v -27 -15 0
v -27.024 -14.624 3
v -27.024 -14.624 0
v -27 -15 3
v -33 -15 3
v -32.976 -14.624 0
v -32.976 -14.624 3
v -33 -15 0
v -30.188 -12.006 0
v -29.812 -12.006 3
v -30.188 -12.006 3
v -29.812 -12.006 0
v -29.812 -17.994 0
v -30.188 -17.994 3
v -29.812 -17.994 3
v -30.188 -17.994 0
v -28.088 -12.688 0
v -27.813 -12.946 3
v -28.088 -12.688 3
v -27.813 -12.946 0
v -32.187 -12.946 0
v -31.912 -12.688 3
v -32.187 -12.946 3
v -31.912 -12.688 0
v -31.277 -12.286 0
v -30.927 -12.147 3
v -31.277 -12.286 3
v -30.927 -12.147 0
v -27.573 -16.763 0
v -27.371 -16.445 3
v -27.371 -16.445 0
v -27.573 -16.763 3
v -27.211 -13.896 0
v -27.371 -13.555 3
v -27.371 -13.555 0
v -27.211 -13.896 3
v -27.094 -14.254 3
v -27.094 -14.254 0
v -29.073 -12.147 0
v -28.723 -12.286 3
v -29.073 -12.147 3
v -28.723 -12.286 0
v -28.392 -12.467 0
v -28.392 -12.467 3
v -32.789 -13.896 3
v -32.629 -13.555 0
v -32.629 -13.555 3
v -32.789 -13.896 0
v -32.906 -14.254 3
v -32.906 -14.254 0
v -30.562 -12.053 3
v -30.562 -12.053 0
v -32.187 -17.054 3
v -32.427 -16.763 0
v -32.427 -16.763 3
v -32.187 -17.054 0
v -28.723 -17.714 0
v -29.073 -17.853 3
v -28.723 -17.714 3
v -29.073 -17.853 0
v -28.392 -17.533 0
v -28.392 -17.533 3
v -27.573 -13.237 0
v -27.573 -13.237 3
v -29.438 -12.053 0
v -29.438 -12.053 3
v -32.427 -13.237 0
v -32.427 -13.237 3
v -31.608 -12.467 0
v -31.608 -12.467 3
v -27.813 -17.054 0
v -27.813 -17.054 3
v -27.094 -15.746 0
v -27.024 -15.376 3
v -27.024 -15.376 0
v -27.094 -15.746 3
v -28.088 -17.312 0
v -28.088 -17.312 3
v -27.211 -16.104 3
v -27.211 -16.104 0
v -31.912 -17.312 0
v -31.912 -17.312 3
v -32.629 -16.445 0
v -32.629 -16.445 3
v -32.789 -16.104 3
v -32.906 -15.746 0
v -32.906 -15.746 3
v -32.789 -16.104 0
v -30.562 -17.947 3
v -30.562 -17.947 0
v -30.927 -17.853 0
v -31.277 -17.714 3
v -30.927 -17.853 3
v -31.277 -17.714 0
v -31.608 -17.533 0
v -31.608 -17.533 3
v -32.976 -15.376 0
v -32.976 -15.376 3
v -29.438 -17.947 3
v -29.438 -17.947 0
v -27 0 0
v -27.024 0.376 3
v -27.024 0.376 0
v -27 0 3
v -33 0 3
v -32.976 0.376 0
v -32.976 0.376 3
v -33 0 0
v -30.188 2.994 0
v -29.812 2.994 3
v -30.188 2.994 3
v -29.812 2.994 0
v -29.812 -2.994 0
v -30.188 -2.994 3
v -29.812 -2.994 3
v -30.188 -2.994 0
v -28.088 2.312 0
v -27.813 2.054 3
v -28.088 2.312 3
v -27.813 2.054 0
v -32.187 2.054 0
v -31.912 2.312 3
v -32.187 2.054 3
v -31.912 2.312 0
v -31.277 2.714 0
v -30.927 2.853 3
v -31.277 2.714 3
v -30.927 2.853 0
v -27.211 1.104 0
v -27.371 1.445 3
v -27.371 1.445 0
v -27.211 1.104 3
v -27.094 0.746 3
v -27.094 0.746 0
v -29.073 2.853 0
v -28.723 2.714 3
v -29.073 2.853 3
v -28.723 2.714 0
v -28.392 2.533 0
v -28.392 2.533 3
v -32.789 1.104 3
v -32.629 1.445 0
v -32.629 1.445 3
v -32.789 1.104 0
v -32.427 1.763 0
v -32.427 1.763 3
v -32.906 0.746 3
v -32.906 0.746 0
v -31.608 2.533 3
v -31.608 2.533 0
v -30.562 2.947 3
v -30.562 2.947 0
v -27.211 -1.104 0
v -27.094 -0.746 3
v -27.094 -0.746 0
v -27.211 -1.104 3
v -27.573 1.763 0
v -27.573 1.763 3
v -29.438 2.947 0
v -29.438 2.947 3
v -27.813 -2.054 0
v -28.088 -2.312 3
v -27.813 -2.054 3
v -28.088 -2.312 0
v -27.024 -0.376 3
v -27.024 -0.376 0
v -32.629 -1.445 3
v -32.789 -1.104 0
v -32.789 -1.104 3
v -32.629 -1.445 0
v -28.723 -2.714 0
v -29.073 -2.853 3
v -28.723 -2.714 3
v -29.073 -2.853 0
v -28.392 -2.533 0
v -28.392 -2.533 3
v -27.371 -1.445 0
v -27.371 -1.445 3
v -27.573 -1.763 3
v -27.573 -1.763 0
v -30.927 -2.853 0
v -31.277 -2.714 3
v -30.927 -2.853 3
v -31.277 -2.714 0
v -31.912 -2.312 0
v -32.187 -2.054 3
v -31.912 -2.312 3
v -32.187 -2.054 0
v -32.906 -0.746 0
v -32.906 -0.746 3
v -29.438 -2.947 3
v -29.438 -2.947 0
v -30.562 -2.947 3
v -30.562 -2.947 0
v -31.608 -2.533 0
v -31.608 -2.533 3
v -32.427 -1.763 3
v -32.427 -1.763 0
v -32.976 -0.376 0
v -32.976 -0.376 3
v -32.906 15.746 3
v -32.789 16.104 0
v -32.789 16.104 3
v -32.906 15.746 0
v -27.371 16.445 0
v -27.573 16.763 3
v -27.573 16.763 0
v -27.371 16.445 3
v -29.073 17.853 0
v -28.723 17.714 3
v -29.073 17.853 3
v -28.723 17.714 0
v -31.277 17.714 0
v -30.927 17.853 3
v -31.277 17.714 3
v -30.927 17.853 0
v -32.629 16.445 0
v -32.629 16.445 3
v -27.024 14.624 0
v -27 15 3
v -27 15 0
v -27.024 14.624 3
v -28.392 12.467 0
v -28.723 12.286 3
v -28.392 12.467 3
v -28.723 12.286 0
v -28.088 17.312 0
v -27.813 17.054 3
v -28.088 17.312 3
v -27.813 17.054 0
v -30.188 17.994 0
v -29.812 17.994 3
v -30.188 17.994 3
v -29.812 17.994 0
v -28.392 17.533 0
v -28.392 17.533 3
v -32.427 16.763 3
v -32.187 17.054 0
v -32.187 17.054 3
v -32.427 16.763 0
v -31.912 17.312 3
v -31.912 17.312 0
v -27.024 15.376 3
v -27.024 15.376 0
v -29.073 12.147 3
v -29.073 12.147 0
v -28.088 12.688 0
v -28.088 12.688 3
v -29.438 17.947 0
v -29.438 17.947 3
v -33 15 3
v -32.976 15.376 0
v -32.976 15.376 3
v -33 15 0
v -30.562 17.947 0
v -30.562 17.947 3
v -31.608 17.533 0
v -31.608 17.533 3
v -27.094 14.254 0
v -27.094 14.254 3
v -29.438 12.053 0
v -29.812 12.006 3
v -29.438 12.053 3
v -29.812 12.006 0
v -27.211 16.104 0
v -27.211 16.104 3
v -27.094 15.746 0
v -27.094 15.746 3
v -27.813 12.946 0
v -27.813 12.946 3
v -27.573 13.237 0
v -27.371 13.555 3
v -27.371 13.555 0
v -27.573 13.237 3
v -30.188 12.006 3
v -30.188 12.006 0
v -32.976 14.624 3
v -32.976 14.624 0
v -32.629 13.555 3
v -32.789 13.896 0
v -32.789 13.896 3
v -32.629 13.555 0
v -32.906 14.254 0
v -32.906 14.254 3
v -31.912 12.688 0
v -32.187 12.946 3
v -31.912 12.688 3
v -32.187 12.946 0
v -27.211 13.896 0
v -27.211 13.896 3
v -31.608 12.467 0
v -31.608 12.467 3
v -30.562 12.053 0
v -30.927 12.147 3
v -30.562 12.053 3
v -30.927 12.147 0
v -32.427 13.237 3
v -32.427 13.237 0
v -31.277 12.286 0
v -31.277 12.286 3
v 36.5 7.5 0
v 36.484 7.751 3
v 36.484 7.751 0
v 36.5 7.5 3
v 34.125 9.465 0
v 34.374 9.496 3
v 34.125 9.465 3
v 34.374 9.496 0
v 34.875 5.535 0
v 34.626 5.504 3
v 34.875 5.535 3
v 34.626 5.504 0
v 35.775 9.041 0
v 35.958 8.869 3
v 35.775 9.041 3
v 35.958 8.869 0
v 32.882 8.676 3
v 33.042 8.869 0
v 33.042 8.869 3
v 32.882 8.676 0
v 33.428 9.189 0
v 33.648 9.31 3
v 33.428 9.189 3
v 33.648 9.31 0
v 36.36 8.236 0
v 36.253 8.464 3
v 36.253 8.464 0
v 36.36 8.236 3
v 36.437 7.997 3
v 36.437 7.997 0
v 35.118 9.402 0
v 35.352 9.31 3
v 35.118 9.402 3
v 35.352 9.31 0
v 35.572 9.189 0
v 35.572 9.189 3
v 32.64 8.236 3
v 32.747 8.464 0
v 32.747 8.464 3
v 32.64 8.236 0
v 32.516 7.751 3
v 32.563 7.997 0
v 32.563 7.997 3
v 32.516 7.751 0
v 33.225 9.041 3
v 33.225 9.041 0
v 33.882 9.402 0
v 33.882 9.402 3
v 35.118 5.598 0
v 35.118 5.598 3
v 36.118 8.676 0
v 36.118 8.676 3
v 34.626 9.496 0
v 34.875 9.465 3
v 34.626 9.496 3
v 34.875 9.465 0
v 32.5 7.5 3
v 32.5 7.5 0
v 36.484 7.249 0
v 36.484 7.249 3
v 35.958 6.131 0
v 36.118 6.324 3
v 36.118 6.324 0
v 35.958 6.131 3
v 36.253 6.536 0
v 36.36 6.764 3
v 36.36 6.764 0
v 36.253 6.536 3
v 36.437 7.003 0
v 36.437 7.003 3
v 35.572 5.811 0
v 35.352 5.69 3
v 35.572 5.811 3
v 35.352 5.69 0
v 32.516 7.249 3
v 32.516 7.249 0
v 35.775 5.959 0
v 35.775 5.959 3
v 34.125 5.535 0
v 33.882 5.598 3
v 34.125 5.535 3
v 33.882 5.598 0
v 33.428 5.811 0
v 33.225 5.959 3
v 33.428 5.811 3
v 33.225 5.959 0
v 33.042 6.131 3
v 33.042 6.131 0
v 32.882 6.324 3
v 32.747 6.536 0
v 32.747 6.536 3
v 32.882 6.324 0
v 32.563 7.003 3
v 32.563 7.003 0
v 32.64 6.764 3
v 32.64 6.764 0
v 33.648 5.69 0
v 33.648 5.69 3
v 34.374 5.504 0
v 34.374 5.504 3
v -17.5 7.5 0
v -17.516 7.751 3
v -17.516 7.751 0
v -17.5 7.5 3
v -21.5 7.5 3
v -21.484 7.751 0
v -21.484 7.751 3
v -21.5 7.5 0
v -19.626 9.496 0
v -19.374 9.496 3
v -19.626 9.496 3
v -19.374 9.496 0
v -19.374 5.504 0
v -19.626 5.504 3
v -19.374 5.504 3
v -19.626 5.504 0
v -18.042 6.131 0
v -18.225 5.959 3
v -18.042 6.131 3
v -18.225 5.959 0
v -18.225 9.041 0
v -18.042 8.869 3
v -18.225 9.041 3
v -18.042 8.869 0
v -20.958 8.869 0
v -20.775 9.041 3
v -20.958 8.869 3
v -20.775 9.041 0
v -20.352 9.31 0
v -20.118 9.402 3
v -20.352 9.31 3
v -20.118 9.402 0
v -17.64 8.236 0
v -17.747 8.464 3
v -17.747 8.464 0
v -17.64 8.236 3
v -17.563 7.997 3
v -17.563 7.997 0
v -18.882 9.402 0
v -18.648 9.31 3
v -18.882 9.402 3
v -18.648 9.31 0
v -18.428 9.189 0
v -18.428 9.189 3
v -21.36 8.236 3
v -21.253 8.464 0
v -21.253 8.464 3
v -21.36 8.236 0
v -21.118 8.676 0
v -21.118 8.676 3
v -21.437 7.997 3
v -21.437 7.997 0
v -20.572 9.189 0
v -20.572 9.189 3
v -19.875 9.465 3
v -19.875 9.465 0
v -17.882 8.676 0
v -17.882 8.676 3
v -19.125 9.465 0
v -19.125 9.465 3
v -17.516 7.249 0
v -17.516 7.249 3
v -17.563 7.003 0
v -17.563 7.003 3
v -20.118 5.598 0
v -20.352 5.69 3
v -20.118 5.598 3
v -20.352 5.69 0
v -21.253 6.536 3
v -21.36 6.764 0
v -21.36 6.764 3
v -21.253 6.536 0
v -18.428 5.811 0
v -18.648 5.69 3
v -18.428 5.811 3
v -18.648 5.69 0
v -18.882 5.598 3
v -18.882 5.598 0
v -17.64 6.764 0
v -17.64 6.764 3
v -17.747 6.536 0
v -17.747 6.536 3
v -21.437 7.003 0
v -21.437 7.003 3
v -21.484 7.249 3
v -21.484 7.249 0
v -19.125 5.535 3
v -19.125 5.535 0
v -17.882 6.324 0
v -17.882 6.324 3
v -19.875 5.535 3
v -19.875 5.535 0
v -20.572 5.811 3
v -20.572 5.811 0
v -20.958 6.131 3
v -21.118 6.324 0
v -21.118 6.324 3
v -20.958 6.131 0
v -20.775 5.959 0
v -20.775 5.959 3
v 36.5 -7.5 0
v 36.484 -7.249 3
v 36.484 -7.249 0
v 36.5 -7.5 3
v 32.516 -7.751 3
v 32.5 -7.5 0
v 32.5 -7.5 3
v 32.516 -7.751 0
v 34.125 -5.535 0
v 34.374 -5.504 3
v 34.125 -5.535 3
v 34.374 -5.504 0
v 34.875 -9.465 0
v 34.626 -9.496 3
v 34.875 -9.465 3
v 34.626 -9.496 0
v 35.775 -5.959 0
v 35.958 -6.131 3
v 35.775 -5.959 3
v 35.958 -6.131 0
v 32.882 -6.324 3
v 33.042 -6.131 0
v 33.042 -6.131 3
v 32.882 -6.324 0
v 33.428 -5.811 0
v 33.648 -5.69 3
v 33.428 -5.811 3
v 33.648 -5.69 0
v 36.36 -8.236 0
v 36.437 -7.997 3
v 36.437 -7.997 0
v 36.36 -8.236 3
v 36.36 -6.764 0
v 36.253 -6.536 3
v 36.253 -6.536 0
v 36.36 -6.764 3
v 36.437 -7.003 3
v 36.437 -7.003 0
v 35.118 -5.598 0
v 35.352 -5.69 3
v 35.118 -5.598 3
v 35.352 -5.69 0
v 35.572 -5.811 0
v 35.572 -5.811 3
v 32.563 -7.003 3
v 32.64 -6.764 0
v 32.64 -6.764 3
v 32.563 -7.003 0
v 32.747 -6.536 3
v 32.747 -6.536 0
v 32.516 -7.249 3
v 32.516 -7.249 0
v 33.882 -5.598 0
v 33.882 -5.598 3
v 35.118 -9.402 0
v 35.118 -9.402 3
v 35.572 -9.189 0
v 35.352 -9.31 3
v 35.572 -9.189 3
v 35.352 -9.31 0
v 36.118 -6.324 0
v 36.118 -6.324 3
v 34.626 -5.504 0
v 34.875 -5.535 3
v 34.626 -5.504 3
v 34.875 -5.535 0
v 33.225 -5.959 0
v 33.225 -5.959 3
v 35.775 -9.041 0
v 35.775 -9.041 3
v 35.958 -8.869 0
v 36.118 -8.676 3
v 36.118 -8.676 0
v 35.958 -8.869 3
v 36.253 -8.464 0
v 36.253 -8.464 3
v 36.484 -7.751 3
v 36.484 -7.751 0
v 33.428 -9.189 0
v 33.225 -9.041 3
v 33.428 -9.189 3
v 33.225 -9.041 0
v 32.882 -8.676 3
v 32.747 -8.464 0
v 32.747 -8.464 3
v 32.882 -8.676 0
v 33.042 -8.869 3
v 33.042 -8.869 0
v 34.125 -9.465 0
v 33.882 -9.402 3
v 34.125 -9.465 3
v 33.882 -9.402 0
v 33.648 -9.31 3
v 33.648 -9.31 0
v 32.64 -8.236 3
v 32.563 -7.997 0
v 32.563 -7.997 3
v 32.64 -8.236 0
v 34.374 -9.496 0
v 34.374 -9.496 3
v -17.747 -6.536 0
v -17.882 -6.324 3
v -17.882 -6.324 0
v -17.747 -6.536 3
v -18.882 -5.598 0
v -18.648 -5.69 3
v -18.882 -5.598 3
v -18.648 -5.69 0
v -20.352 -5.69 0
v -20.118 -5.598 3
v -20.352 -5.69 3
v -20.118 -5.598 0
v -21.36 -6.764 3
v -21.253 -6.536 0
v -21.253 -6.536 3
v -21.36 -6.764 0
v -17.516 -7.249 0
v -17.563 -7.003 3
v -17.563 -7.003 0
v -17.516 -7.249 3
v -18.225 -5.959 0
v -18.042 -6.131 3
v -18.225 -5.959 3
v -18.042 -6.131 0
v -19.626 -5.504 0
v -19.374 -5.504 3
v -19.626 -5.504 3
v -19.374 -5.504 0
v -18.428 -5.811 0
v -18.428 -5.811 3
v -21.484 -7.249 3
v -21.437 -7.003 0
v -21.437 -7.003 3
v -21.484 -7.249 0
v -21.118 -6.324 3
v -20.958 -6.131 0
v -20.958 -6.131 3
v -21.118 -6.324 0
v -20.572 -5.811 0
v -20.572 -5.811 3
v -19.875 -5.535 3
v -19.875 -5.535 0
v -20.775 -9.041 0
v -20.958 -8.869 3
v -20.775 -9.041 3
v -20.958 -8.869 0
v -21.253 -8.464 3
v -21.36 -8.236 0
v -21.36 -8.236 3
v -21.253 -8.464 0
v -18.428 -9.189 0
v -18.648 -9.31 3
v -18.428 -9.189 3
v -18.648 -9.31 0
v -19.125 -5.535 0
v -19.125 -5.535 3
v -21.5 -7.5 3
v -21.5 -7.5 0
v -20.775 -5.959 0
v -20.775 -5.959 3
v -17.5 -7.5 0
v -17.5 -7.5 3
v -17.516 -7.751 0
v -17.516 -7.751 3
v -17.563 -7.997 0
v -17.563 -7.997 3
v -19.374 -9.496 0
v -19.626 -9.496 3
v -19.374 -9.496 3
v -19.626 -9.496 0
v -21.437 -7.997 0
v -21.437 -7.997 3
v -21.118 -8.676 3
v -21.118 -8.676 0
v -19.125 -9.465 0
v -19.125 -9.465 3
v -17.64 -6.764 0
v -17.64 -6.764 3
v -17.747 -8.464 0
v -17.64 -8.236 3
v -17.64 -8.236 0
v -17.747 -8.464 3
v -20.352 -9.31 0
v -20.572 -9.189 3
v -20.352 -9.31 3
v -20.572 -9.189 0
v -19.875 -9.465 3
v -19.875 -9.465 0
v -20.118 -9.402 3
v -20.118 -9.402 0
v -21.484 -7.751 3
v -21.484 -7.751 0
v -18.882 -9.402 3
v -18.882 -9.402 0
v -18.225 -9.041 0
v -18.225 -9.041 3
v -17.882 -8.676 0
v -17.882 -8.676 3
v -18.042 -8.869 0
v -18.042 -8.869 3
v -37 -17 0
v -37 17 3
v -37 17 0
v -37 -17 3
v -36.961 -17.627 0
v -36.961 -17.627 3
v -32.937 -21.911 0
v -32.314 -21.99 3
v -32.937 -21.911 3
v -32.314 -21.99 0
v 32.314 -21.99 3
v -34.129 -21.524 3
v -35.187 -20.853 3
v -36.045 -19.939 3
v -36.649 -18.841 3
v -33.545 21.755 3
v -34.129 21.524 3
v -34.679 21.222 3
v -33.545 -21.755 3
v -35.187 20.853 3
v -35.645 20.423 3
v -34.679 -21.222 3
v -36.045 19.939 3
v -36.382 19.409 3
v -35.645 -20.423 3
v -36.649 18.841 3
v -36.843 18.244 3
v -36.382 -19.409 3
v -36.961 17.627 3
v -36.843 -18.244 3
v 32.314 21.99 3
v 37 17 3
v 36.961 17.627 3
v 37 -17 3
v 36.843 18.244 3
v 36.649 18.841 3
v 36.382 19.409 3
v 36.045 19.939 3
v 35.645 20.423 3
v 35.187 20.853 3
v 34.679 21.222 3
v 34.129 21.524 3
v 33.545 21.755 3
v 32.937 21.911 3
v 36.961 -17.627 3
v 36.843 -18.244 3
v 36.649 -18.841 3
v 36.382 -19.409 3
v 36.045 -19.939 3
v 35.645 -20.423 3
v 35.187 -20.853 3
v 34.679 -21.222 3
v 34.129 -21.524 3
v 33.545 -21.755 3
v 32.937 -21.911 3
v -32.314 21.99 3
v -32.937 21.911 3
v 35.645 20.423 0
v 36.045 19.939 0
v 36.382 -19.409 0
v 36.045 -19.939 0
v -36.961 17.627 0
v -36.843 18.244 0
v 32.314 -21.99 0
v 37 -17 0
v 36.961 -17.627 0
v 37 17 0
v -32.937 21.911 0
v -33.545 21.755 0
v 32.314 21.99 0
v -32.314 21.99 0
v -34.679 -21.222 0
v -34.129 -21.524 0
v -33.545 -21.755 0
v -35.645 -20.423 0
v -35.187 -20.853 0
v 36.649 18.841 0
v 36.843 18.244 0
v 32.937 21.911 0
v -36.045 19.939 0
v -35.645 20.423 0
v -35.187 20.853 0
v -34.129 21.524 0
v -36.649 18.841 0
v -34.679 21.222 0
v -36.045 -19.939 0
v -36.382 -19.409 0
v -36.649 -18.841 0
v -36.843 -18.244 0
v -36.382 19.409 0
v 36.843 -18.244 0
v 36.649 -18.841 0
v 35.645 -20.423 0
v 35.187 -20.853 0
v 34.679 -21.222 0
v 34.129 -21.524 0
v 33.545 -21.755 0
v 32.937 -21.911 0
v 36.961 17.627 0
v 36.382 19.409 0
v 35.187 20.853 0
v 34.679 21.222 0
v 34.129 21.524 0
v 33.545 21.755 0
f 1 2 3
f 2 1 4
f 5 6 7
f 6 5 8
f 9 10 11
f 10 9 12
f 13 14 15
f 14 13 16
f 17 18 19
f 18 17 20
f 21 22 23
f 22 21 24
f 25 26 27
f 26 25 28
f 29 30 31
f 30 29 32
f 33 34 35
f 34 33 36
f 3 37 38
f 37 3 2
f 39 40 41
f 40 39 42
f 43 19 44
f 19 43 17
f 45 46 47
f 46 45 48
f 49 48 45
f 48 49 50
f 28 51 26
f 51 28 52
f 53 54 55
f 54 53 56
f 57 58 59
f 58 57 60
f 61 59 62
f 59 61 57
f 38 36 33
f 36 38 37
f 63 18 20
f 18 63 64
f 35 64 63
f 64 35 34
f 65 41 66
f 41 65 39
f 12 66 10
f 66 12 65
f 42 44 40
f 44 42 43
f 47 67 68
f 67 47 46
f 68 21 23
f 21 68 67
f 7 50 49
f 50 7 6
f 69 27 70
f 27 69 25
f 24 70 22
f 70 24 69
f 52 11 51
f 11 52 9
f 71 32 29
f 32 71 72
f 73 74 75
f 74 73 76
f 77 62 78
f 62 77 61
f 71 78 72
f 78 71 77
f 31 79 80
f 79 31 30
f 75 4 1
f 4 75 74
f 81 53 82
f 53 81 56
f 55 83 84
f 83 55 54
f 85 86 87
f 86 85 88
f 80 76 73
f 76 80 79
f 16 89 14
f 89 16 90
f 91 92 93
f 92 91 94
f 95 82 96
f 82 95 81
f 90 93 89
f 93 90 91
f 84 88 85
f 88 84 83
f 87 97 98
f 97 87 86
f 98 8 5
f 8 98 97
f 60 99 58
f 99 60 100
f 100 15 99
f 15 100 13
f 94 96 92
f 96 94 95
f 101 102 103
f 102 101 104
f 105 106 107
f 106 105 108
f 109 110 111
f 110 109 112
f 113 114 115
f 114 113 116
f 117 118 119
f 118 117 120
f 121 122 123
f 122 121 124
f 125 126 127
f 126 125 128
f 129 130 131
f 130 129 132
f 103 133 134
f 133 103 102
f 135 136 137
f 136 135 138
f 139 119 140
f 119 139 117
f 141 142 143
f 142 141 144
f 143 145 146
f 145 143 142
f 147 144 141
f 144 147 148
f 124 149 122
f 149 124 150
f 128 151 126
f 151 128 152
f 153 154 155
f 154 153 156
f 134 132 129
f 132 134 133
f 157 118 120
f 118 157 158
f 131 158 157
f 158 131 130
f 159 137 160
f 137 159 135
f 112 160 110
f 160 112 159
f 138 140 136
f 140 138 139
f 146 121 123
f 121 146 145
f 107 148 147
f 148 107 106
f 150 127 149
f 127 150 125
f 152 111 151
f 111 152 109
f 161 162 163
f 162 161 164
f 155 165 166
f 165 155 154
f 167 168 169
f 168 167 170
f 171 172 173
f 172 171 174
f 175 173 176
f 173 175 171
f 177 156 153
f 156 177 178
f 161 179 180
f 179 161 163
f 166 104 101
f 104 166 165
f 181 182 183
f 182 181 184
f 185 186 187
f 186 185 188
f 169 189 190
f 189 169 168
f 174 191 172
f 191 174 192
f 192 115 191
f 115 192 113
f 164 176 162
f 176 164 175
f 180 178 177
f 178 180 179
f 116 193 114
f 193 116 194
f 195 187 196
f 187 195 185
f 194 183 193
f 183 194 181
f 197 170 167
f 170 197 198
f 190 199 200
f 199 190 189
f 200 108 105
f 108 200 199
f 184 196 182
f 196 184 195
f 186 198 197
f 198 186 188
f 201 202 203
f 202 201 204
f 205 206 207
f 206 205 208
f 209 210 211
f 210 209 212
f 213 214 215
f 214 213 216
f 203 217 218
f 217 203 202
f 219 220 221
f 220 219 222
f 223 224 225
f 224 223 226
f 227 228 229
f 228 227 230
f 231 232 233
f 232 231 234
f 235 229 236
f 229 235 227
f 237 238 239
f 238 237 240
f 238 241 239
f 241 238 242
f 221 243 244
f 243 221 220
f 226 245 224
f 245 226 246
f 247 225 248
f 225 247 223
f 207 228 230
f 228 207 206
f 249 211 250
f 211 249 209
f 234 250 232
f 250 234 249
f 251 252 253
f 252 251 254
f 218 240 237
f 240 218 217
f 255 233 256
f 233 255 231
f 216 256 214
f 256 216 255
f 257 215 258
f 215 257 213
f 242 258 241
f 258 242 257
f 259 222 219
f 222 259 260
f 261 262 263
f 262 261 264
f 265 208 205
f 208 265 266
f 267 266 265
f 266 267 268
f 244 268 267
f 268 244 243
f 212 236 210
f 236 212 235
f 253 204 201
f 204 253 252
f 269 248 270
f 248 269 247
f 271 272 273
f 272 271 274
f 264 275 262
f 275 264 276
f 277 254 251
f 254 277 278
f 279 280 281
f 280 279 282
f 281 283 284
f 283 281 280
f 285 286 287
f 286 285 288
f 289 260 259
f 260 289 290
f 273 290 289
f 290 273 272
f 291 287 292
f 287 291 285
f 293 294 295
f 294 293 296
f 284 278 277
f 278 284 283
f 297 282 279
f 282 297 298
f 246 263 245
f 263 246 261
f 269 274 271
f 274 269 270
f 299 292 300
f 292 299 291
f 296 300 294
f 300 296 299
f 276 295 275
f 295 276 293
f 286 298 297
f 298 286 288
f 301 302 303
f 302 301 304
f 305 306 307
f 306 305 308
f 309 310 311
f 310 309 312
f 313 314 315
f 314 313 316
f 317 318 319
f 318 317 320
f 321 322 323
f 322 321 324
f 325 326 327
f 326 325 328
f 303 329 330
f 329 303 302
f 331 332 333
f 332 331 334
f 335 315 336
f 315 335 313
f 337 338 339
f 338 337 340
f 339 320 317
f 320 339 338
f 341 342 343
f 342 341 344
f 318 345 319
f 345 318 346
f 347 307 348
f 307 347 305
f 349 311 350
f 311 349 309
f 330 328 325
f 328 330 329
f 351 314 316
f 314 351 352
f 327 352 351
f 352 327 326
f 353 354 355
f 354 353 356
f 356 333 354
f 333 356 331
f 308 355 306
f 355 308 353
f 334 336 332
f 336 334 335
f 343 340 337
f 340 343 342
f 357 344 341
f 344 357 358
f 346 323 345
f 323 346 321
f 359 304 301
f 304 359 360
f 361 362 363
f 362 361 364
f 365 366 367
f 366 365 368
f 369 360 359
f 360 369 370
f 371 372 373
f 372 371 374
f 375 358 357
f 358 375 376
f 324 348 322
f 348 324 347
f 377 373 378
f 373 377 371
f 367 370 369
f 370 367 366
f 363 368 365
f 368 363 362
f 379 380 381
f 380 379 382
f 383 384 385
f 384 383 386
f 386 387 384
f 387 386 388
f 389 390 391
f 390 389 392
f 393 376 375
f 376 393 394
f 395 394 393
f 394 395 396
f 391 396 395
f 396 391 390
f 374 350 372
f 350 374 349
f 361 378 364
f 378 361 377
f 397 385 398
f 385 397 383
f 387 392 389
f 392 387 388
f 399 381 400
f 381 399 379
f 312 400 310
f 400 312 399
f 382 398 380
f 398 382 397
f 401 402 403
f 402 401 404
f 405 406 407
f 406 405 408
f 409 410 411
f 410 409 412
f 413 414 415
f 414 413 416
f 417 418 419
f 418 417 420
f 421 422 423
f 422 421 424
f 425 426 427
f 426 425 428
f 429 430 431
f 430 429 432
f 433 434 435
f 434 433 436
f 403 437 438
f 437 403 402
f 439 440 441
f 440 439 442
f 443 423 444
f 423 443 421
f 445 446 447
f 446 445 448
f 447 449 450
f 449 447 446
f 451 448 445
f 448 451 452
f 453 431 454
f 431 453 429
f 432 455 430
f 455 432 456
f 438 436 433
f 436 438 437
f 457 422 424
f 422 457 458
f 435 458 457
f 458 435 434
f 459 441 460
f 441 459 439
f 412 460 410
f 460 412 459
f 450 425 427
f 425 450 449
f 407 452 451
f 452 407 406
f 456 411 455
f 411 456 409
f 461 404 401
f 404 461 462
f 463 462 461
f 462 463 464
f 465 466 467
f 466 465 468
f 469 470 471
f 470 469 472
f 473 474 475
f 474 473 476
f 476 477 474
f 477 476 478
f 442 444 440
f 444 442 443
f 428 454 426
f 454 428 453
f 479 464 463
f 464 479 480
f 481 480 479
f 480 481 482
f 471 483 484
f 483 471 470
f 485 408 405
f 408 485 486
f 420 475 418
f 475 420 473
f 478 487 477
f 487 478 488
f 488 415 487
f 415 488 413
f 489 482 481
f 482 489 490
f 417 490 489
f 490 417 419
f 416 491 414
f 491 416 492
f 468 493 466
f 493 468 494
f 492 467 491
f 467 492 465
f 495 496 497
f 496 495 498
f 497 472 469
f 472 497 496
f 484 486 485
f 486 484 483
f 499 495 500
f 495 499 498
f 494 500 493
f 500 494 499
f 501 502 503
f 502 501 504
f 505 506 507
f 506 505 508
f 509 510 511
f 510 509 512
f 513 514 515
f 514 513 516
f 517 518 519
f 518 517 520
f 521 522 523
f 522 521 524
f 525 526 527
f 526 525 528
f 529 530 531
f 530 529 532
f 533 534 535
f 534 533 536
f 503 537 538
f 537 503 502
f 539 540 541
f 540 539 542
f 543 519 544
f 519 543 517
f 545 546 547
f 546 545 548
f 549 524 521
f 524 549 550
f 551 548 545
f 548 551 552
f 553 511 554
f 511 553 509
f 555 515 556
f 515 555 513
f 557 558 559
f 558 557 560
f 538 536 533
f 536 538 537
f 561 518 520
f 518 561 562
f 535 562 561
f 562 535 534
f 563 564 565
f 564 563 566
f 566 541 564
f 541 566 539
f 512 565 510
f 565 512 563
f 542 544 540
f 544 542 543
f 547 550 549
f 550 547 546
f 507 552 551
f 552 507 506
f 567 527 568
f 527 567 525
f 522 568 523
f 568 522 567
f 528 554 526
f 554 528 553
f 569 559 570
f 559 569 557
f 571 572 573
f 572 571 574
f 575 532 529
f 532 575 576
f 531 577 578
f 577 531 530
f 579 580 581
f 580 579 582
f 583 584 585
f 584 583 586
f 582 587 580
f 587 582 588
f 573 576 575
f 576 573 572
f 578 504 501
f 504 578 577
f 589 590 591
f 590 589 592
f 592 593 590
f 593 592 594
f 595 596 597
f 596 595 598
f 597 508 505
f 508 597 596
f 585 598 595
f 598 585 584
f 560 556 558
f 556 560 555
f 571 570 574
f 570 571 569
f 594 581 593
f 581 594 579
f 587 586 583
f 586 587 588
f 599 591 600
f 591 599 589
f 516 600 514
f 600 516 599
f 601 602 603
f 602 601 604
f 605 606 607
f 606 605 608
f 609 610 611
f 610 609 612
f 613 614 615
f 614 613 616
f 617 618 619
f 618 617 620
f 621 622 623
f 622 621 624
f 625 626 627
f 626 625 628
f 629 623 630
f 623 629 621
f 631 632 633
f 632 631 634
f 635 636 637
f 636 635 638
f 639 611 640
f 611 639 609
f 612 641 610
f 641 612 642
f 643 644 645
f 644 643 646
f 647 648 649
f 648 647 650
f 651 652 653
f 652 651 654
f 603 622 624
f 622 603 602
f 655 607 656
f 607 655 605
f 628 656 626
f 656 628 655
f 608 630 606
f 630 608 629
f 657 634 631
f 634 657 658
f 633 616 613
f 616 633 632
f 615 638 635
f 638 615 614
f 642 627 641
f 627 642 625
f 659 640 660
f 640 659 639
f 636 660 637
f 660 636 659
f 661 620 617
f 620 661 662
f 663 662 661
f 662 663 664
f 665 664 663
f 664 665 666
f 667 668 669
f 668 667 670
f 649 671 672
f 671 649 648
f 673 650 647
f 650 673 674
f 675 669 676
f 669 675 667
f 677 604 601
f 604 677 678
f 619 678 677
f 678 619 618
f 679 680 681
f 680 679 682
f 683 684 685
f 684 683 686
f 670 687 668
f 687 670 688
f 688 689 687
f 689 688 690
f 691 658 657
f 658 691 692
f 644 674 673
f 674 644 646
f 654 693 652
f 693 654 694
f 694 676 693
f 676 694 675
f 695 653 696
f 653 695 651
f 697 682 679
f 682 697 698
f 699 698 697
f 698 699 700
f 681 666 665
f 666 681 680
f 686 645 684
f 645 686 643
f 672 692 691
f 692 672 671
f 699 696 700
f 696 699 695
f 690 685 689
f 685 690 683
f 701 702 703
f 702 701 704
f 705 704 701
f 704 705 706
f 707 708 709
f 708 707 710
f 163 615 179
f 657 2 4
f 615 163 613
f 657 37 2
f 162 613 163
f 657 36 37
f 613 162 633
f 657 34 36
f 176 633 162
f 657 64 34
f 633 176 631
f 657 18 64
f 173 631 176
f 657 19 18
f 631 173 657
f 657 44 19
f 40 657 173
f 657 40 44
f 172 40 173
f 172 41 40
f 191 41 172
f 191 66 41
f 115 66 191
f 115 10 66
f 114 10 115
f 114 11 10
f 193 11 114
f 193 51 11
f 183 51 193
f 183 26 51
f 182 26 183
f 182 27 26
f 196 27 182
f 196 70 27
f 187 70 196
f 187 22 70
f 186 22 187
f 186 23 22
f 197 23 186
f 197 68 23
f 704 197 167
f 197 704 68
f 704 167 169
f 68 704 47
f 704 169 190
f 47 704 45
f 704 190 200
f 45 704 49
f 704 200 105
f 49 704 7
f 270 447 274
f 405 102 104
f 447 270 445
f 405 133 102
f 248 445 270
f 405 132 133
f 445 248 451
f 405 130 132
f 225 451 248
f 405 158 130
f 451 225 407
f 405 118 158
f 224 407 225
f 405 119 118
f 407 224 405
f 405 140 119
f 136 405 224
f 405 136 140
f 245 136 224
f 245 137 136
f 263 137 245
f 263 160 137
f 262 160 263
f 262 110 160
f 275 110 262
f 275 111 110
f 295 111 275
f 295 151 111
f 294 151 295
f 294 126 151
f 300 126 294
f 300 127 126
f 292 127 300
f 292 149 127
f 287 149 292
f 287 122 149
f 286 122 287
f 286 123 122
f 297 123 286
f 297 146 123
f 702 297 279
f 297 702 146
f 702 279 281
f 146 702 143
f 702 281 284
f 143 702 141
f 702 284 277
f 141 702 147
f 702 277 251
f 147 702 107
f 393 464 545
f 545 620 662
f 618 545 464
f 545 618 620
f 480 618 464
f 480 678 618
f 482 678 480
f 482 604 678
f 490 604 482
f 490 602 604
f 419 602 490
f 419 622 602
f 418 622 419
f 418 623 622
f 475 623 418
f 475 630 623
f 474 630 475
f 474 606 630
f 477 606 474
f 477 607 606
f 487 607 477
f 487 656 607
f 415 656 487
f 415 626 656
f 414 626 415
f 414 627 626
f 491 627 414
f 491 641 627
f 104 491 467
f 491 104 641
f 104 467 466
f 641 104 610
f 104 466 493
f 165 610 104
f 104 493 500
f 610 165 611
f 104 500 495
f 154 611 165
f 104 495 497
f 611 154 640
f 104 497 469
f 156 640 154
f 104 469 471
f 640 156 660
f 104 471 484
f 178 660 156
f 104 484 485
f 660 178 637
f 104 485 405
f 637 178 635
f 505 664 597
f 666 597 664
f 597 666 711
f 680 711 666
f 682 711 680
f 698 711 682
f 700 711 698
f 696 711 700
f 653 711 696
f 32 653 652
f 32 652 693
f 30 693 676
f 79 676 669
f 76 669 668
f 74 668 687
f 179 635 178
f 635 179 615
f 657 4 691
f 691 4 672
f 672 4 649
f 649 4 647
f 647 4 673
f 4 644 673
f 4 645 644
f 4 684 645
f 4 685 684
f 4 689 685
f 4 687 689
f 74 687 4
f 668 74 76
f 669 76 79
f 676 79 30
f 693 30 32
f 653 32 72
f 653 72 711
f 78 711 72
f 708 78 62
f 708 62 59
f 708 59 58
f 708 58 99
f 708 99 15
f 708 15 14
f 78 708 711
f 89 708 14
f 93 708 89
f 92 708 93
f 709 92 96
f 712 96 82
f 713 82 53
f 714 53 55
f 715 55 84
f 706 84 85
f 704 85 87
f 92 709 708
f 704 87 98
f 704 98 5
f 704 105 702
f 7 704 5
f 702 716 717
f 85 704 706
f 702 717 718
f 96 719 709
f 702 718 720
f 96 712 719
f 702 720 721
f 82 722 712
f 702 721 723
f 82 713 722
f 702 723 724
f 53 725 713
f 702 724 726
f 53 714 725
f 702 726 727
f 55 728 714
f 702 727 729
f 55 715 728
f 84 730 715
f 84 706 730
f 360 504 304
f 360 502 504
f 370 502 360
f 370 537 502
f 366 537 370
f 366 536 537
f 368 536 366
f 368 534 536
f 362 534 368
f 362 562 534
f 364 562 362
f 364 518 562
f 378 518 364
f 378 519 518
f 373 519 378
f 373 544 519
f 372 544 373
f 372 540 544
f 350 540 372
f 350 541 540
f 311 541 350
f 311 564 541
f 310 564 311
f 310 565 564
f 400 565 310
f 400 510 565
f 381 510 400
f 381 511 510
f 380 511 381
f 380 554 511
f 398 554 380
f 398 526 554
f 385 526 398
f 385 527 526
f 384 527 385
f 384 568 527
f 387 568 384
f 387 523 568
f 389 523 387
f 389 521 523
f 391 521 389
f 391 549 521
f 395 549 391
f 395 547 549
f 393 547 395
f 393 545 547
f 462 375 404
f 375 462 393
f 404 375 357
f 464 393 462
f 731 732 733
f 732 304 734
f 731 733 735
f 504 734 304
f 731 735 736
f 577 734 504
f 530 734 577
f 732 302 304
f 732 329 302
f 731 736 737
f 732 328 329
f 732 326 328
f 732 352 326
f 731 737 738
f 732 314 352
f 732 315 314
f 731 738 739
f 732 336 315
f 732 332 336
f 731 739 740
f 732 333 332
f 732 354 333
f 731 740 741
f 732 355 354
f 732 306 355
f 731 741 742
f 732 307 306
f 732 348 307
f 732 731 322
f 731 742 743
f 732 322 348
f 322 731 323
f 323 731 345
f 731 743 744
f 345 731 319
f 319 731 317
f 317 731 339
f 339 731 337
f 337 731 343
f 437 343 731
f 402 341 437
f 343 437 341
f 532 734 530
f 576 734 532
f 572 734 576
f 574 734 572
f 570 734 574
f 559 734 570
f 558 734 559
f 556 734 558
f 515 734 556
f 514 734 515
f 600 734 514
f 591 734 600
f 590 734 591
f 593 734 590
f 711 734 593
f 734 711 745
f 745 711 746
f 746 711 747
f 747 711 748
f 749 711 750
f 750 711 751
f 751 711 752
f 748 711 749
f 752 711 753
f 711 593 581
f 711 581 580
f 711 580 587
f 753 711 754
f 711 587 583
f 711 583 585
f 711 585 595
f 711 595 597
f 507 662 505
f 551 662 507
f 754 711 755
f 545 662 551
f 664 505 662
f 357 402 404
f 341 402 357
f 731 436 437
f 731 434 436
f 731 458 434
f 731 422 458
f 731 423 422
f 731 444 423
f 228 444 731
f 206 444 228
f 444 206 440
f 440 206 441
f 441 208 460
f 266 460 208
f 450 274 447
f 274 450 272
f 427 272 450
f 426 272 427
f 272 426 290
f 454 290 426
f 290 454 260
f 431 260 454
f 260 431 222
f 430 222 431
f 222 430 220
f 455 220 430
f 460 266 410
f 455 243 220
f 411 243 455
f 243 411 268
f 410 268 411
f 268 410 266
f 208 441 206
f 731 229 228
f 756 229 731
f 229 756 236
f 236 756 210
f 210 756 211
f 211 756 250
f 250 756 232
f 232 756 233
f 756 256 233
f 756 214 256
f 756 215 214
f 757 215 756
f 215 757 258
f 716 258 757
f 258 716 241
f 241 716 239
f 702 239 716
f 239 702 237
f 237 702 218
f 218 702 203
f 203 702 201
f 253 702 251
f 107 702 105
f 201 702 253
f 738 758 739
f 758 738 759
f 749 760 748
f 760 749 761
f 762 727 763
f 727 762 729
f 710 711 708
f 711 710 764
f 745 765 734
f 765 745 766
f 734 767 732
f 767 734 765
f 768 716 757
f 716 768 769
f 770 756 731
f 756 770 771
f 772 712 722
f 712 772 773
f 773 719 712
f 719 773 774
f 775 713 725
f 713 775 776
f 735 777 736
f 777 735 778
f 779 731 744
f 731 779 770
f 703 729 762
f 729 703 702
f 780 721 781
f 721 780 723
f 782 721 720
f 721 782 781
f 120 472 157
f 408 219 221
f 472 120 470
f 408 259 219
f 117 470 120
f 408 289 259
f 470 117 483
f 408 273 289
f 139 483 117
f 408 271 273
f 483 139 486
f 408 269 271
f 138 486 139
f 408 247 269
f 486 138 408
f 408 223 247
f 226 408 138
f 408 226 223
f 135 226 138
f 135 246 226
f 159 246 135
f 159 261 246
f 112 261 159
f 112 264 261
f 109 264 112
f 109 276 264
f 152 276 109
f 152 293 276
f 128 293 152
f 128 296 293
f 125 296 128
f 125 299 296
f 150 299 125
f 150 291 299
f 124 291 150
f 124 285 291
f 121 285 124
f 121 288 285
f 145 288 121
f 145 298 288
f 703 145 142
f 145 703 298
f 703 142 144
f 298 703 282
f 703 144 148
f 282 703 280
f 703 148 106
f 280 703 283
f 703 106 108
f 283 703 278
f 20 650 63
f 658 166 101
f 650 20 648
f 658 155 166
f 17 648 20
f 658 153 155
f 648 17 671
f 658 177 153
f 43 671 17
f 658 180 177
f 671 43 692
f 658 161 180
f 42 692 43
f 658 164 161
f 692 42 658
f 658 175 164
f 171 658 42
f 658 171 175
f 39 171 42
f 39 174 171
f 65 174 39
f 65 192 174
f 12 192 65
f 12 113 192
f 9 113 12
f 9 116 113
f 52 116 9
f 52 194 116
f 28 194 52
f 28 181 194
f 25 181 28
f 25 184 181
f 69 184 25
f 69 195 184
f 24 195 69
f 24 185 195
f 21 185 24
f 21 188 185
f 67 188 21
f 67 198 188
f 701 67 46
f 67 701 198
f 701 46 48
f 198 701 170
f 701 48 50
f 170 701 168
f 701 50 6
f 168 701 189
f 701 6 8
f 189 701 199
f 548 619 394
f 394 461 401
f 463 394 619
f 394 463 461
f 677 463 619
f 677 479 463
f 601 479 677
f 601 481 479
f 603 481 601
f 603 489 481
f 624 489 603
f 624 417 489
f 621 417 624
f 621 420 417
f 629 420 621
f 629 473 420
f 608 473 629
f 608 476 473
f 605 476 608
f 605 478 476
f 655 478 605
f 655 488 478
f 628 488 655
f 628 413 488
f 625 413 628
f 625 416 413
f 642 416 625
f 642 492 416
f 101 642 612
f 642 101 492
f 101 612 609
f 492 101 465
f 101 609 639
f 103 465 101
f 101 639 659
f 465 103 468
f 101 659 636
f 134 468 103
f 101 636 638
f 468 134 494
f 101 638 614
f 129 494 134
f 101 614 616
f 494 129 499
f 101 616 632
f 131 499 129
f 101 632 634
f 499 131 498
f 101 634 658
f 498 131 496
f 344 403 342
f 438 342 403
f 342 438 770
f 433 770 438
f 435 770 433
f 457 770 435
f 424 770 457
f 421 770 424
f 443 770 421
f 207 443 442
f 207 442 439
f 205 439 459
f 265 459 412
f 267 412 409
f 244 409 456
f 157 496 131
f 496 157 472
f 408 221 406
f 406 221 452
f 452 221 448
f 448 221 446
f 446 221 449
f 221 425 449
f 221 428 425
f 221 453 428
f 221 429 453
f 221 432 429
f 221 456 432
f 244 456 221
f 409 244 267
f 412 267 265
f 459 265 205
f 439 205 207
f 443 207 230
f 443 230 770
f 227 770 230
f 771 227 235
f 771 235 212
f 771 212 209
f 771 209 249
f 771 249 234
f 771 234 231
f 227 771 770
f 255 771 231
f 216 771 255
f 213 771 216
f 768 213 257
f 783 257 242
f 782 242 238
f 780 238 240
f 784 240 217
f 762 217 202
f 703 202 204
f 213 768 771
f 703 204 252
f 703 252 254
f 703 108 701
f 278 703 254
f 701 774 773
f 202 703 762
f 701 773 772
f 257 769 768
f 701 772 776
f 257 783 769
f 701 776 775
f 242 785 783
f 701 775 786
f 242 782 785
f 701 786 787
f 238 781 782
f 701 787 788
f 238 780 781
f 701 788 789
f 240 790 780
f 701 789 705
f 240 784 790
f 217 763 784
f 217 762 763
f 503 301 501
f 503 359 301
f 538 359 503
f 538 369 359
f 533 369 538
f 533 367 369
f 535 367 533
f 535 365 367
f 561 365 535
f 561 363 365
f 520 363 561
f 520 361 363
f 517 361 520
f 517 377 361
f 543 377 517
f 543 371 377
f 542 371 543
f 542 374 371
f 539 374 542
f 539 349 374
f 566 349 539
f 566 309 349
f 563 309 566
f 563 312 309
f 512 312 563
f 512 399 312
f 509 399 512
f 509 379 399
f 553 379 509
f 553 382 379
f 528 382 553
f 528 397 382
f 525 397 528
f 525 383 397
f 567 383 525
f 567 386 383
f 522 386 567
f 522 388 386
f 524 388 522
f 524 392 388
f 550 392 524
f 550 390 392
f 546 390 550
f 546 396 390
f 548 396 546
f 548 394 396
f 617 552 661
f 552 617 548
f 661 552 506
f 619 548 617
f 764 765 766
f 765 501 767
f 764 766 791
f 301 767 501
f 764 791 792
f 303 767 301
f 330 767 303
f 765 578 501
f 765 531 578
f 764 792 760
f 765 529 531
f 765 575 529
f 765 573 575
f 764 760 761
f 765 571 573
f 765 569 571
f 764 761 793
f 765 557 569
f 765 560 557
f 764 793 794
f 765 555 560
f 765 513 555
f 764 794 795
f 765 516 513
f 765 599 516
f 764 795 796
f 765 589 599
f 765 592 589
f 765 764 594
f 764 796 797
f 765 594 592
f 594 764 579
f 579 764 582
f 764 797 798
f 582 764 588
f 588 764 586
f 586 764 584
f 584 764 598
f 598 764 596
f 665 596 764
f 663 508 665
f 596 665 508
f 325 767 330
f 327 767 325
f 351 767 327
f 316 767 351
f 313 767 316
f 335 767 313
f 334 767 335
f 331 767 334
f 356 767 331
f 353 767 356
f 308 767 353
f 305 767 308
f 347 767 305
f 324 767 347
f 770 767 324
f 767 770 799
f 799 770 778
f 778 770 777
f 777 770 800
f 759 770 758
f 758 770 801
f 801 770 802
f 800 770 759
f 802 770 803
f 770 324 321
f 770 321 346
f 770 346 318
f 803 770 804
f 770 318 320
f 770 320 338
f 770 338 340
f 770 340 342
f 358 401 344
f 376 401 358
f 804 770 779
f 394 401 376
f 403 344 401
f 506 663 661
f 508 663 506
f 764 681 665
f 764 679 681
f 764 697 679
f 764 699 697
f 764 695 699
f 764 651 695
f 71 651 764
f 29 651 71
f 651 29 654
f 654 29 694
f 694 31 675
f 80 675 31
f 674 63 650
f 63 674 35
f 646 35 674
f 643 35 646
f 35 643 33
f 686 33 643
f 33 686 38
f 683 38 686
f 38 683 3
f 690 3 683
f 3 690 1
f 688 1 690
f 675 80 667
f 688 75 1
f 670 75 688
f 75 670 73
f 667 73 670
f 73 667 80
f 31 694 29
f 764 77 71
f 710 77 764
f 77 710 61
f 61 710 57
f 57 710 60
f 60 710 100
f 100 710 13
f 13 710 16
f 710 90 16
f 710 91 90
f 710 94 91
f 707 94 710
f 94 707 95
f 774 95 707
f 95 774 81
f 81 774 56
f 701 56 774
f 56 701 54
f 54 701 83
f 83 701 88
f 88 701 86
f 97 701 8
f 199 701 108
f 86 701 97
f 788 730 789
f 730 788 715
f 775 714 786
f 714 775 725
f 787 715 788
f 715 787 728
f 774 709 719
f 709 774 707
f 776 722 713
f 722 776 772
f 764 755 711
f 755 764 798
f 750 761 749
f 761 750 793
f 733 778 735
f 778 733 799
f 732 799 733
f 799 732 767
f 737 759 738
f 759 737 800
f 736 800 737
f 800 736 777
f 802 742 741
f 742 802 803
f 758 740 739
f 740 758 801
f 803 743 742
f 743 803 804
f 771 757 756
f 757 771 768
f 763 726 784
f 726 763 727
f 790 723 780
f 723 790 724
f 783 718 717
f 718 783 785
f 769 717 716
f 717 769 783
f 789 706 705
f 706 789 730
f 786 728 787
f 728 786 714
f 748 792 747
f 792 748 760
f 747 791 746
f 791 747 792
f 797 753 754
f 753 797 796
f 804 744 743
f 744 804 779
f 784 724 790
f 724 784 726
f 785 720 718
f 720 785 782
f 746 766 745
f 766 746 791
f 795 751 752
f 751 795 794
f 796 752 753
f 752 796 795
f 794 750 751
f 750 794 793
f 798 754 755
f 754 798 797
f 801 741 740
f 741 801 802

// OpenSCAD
$fn = 50;


difference() {
	union() {
		translate(v = [0, 0, 0]) {
			rotate(a = [0, 0, 0]) {
				hull() {
					translate(v = [-32.0000000000, 17.0000000000, 0]) {
						rotate(a = [0, 0, 0]) {
							translate(v = [0, 0, 0]) {
								rotate(a = [0, 0, 0]) {
									cylinder(h = 3, r = 5);
								}
							}
						}
					}
					translate(v = [32.0000000000, 17.0000000000, 0]) {
						rotate(a = [0, 0, 0]) {
							translate(v = [0, 0, 0]) {
								rotate(a = [0, 0, 0]) {
									cylinder(h = 3, r = 5);
								}
							}
						}
					}
					translate(v = [-32.0000000000, -17.0000000000, 0]) {
						rotate(a = [0, 0, 0]) {
							translate(v = [0, 0, 0]) {
								rotate(a = [0, 0, 0]) {
									cylinder(h = 3, r = 5);
								}
							}
						}
					}
					translate(v = [32.0000000000, -17.0000000000, 0]) {
						rotate(a = [0, 0, 0]) {
							translate(v = [0, 0, 0]) {
								rotate(a = [0, 0, 0]) {
									cylinder(h = 3, r = 5);
								}
							}
						}
					}
				}
			}
		}
	}
	union() {
		translate(v = [-30.0000000000, -15.0000000000, -125.0000000000]) {
			rotate(a = [0, 0, 0]) {
				cylinder(h = 250, r = 3.0000000000);
			}
		}
		translate(v = [-30.0000000000, 0.0000000000, -125.0000000000]) {
			rotate(a = [0, 0, 0]) {
				cylinder(h = 250, r = 3.0000000000);
			}
		}
		translate(v = [-30.0000000000, 15.0000000000, -125.0000000000]) {
			rotate(a = [0, 0, 0]) {
				cylinder(h = 250, r = 3.0000000000);
			}
		}
		translate(v = [34.5000000000, 7.5000000000, -125.0000000000]) {
			rotate(a = [0, 0, 0]) {
				cylinder(h = 250, r = 2.0000000000);
			}
		}
		translate(v = [-19.5000000000, 7.5000000000, -125.0000000000]) {
			rotate(a = [0, 0, 0]) {
				cylinder(h = 250, r = 2.0000000000);
			}
		}
		translate(v = [34.5000000000, -7.5000000000, -125.0000000000]) {
			rotate(a = [0, 0, 0]) {
				cylinder(h = 250, r = 2.0000000000);
			}
		}
		translate(v = [-19.5000000000, -7.5000000000, -125.0000000000]) {
			rotate(a = [0, 0, 0]) {
				cylinder(h = 250, r = 2.0000000000);
			}
		}
	}
}
